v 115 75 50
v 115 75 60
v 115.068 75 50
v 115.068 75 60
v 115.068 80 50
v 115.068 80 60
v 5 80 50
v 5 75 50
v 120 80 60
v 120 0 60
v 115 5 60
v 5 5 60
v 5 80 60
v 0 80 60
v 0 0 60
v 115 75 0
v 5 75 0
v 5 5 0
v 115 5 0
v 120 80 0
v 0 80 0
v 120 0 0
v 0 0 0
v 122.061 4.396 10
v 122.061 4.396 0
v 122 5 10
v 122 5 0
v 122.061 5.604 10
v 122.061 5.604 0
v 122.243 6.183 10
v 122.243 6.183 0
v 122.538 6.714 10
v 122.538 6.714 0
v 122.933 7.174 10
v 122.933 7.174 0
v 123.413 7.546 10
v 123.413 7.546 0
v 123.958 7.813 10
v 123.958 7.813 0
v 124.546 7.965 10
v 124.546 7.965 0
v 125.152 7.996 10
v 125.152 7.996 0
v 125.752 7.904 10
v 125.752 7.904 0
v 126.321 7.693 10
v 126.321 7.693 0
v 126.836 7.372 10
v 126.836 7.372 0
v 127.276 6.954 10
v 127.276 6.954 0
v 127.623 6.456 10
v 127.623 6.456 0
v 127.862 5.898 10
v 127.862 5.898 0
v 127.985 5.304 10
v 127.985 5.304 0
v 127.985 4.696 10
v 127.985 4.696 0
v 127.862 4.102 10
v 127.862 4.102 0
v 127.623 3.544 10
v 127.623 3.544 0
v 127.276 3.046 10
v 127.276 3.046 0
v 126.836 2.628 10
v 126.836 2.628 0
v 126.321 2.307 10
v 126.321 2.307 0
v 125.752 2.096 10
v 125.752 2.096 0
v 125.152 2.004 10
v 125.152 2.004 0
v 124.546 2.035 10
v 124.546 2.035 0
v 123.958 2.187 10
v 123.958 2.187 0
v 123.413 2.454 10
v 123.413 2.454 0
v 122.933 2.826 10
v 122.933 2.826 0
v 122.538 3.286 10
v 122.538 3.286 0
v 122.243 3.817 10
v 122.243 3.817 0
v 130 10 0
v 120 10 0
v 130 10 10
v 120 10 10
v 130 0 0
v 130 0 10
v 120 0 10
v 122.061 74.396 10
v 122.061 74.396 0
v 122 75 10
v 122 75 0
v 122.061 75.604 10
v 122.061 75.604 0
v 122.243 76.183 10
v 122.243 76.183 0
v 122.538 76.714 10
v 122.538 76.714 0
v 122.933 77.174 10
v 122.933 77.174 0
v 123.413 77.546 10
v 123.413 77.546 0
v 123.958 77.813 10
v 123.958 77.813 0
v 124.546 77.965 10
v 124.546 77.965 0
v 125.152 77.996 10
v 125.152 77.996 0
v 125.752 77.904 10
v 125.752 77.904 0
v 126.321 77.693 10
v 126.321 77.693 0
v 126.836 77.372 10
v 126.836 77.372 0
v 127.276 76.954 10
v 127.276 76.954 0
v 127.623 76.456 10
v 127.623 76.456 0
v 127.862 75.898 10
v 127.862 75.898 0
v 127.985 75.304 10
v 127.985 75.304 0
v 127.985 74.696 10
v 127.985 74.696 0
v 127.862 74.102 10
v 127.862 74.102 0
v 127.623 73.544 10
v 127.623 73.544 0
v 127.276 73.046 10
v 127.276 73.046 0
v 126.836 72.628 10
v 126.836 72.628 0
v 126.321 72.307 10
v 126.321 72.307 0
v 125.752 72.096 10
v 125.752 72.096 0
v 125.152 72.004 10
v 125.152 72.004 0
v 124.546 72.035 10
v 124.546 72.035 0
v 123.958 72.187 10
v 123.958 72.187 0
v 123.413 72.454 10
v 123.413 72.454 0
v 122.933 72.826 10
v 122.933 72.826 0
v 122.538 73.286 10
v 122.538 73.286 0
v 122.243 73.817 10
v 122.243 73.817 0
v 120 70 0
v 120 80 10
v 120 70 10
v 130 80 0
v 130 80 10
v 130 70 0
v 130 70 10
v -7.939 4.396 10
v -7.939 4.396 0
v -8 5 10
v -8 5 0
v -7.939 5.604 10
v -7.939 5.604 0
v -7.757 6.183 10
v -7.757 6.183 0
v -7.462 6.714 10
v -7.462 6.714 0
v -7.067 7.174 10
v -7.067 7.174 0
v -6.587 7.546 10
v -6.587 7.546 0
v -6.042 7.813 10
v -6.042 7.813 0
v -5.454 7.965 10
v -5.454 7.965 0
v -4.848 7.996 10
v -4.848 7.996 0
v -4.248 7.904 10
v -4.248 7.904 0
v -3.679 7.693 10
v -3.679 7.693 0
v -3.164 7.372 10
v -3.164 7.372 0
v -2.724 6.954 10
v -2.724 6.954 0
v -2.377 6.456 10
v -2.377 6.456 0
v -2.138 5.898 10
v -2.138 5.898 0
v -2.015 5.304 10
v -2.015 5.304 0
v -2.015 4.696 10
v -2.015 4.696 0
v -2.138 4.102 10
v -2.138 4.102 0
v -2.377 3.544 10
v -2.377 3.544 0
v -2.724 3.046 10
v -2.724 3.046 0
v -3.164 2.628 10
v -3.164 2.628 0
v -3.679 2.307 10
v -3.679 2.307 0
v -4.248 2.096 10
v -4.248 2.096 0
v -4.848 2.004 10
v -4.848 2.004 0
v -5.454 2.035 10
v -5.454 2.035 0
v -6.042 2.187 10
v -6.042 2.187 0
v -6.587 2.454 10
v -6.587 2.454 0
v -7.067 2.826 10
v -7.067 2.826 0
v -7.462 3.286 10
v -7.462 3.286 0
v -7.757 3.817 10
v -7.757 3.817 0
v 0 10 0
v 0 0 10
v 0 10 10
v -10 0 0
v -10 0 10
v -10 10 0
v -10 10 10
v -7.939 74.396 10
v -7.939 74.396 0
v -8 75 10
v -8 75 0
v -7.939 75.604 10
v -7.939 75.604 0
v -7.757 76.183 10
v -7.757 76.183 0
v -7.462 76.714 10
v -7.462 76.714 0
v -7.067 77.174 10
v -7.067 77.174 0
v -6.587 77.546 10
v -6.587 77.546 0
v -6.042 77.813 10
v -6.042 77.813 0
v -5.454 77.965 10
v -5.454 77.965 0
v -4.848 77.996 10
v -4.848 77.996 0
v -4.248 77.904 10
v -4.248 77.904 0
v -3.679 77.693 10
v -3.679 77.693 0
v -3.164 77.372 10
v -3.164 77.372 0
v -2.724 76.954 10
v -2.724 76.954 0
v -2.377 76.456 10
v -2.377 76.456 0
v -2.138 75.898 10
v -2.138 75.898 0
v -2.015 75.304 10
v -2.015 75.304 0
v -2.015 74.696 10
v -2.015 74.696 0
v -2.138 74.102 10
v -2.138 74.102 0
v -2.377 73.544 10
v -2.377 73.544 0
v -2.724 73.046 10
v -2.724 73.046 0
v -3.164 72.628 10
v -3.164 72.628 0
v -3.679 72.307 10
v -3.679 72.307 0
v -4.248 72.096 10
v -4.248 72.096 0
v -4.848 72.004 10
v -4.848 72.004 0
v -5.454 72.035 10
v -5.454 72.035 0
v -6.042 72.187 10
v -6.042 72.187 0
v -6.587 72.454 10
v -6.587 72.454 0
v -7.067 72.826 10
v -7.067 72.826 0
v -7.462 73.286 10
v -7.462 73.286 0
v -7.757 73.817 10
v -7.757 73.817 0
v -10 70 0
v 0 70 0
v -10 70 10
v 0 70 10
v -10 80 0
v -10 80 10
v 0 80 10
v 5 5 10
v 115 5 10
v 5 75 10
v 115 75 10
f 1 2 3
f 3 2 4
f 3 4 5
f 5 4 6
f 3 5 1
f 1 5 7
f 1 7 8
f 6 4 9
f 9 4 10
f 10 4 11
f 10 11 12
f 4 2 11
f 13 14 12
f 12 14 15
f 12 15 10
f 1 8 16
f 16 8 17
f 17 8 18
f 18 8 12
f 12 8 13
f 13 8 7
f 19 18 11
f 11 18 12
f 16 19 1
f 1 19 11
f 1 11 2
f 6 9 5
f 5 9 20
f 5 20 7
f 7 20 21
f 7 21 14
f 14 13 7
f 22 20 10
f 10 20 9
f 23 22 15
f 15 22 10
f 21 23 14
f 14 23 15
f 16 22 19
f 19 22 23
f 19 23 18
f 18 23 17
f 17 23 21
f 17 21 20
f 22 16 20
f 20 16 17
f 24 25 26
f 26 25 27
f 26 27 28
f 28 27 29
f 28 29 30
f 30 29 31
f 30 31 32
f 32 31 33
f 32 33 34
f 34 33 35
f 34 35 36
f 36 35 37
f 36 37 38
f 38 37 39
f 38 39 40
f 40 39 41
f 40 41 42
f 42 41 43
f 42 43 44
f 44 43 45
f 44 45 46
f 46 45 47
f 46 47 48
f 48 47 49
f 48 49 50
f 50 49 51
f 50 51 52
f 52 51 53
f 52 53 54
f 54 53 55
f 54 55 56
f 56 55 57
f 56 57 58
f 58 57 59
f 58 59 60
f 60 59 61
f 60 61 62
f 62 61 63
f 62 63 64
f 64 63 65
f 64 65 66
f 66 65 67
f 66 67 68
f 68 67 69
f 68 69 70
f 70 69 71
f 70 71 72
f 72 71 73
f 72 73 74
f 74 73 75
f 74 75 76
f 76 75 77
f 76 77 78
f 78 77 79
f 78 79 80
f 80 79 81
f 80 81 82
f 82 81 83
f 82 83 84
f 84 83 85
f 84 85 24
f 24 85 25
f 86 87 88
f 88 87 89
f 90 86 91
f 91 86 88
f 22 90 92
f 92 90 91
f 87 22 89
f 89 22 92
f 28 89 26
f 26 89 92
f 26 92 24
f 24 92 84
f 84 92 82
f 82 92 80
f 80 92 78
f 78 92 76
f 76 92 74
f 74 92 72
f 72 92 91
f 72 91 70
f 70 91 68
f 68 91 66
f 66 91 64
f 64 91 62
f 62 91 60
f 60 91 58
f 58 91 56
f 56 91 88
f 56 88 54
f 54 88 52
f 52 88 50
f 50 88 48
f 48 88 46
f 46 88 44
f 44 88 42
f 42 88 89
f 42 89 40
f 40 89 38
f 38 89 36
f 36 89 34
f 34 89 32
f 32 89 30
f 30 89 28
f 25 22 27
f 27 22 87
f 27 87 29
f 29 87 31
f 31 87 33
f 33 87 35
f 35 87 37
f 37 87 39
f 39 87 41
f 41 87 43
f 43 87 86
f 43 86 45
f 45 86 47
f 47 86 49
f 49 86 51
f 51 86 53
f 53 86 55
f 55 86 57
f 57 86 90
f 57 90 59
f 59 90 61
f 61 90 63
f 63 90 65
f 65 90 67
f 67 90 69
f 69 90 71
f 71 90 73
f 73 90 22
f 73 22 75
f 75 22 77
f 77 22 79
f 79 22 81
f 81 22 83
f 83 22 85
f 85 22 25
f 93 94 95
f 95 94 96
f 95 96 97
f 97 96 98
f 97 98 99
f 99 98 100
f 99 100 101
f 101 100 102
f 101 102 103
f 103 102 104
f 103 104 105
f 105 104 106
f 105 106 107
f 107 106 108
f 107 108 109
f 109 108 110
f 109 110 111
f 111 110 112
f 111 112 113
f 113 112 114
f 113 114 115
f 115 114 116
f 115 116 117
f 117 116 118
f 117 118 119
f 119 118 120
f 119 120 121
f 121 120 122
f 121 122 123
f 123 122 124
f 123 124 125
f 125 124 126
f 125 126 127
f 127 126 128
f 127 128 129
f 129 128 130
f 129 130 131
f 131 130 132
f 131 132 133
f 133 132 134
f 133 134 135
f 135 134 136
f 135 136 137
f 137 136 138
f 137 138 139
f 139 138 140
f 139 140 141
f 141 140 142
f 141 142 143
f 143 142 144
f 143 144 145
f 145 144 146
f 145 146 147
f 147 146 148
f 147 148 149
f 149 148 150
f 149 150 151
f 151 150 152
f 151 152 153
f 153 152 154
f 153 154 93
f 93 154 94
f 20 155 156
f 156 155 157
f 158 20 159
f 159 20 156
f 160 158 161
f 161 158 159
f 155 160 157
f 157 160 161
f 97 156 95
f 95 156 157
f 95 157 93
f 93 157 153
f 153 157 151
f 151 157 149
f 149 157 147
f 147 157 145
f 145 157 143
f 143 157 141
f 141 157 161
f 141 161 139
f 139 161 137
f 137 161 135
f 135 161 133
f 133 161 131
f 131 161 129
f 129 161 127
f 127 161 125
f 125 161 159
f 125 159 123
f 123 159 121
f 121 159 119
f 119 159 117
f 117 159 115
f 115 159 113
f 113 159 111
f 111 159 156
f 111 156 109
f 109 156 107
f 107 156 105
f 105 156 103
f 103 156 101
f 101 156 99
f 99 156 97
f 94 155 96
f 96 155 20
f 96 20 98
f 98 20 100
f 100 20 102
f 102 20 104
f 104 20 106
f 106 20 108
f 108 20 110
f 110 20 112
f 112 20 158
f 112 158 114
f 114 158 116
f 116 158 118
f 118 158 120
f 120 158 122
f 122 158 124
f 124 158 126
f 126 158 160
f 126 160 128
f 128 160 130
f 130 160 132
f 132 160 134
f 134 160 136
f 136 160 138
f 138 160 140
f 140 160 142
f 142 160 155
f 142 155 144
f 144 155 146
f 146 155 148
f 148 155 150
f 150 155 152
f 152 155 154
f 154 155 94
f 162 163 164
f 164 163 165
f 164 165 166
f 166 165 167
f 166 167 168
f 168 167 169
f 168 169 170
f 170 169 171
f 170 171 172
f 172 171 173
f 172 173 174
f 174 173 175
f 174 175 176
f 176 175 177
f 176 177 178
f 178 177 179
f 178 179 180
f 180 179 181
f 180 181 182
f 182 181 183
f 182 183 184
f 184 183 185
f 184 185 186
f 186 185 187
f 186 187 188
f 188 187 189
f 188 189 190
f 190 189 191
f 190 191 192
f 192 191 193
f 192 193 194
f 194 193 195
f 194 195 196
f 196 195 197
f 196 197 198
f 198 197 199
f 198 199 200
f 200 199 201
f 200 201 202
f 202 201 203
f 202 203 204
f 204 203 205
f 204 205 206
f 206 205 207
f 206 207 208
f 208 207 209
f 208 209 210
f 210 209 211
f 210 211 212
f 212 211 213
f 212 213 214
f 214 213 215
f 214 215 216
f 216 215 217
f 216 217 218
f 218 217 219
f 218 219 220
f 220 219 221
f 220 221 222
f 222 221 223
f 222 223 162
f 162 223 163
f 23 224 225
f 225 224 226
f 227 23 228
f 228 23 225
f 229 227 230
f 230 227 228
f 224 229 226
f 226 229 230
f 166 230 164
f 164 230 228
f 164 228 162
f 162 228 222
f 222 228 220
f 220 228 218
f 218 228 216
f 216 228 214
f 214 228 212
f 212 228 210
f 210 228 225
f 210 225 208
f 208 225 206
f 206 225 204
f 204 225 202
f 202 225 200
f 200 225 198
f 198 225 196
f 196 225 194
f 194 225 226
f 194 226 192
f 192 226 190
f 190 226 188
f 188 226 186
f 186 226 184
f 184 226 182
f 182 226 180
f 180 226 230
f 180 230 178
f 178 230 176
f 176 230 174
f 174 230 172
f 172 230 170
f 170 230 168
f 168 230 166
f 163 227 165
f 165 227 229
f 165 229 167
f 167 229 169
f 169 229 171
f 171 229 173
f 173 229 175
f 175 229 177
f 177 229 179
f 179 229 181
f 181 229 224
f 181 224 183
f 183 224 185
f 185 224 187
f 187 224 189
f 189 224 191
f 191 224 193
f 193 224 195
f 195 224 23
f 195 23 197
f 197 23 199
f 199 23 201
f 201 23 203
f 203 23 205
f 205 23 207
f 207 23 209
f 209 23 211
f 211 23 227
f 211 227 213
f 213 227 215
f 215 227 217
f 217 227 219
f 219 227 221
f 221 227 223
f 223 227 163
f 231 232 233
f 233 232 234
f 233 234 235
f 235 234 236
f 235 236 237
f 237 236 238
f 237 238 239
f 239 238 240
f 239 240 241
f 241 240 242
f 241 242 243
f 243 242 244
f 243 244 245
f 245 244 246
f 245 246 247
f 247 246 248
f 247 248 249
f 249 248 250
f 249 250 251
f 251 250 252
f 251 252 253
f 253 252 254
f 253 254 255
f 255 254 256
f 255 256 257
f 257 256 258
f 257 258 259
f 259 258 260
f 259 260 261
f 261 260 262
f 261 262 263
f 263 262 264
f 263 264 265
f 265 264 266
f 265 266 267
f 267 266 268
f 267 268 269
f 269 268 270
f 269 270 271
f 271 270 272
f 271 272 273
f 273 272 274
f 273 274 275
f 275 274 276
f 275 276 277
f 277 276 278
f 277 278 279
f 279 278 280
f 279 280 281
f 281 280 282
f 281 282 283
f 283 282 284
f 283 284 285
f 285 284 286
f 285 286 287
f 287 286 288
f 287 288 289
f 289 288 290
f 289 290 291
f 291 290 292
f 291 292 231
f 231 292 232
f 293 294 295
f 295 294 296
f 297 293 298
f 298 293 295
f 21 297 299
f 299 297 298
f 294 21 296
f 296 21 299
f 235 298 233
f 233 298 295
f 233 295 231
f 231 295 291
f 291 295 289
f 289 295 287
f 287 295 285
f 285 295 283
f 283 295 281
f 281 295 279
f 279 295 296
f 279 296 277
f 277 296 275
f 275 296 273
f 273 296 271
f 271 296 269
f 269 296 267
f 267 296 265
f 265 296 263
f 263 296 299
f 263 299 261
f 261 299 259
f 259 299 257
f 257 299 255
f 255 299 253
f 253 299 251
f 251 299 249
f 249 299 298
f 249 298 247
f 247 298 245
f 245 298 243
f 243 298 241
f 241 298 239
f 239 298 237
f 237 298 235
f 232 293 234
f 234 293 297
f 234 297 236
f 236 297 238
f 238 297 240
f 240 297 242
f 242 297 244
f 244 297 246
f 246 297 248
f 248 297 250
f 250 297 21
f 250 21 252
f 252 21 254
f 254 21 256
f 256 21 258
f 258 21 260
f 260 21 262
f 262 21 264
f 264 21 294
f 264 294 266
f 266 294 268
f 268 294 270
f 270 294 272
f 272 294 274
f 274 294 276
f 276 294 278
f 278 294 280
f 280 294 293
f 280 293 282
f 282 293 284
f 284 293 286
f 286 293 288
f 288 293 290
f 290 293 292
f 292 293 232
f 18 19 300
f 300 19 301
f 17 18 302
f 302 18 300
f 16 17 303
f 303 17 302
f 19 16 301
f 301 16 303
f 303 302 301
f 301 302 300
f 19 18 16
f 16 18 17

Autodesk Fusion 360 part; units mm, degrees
sketch "Sketch1" plane through (0, 0, 0) normal (0, 0, 1) x (1, 0, 0)
  line L0 (0, 0) -> (120, 0)
  line L1 (120, 0) -> (120, 80)
  line L2 (120, 80) -> (0, 80)
  line L3 (0, 80) -> (0, 0)
  line L4 (120, 80) -> (130, 80)
  line L5 (130, 80) -> (130, 70)
  line L6 (130, 70) -> (120, 70)
  line L7 (120, 70) -> (120, 80)
  line L8 (120, 0) -> (130, 0)
  line L9 (130, 0) -> (130, 10)
  line L10 (130, 10) -> (120, 10)
  line L11 (120, 10) -> (120, 0)
  line L12 (0, 0) -> (-10, 0)
  line L13 (-10, 0) -> (-10, 10)
  line L14 (-10, 10) -> (0, 10)
  line L15 (0, 10) -> (0, 0)
  line L16 (0, 80) -> (-10, 80)
  line L17 (-10, 80) -> (-10, 70)
  line L18 (-10, 70) -> (0, 70)
  line L19 (0, 70) -> (0, 80)
  circle A0 centre (125, 75) radius 3
  circle A1 centre (125, 5) radius 3
  circle A2 centre (-5, 75) radius 3
  circle A3 centre (-5, 5) radius 3
  line L20 (115, 75) -> (5, 75)
  line L21 (5, 75) -> (5, 5)
  line L22 (5, 5) -> (115, 5)
  line L23 (115, 5) -> (115, 75)
  dimension "d1" = 80
  dimension "d2" = 120
  dimension "d3" = 6
  dimension "d4" = 6
  dimension "d5" = 6
  dimension "d6" = 6
  dimension "d7" = -5
extrude "Extrude2" add sketch "Sketch1" along normal blind 60 contours L0 L1 L2 L3 L7 L11 L15 L19 makes body 1
extrude "Extrude1" add sketch "Sketch1" along normal blind 10 separate body contours L3 L12 L13 L14 L15 | L1 L8 L9 L10 L11 | L3 L16 L17 L18 L19 | L1 L4 L5 L6 L7 | L20 L21 L22 L23 makes body 2 at (123.6314, 2.3304, 3.3333) makes body 3 at (127.6347, 76.4348, 3.3333) makes body 4 at (-2.0037, 4.8505, 6.6667) makes body 5 at (-2.1809, 73.9739, 6.6667) makes body 6 at (41.6667, 28.3333, 0)
sketch "Sketch2" plane through (0, 80, 0) normal (0, 1, 0) x (-1, 0, 0)
  line L0 (-120, 0) -> (0, 0)
  line L1 (0, 0) -> (0, 60)
  line L2 (0, 60) -> (-120, 60)
  line L3 (-120, 60) -> (-120, 0)
  line L4 (-115.0684, 60) -> (-5, 60)
  line L5 (-5, 60) -> (-5, 50)
  line L6 (-5, 50) -> (-115.0684, 50)
  line L7 (-115.0684, 50) -> (-115.0684, 60)
extrude "Extrude3" cut sketch "Sketch2" against normal up to surface (5 mm away) contours L2 L4 L5 L6 L7 bodies 1
sketch "Sketch3" plane through (0, 80, 0) normal (0, 1, 0) x (-1, 0, 0)
  line L0 (-115.0684, 50) -> (-115.0684, 60)
  line L1 (-115.0684, 60) -> (-120, 60)
  line L2 (-120, 60) -> (-120, 0)
  line L3 (-120, 0) -> (0, 0)
  line L4 (0, 0) -> (0, 60)
  line L5 (0, 60) -> (-5, 60)
  line L6 (-5, 60) -> (-5, 50)
  line L7 (-5, 50) -> (-115.0684, 50)
sketch "Sketch4" plane through (0, 0, 60) normal (0, 0, 1) x (-1, 0, 0)
  line L0 (-115.0684, -80) -> (-115.0684, -75)
  line L1 (-115.0684, -75) -> (-115, -75)
  line L2 (-115, -75) -> (-115, -5)
  line L3 (-115, -5) -> (-5, -5)
  line L4 (-5, -5) -> (-5, -80)
  line L5 (-5, -80) -> (0, -80)
  line L6 (0, -80) -> (0, 0)
  line L7 (0, 0) -> (-120, 0)
  line L8 (-120, 0) -> (-120, -80)
  line L9 (-120, -80) -> (-115.0684, -80)
  line L10 (-2.5, -75) -> (-117.5, -75) construction
  line L11 (-117.5, -75) -> (-117.5, -2.5) construction
  line L12 (-117.5, -2.5) -> (-2.5, -2.5) construction
  line L13 (-2.5, -2.5) -> (-2.5, -75) construction
  line L14 (-5, -75) -> (-5, -5) construction
  line L15 (0, 0) -> (-120, 0) construction
  line L16 (-120, 0) -> (-120, -80) construction
  line L17 (-120, -80) -> (0, -80) construction
  circle A0 centre (-2.5, -75) radius 1.5
  circle A1 centre (-2.5, -2.5) radius 1.5
  circle A2 centre (-117.5, -2.5) radius 1.5
  circle A3 centre (-117.5, -75) radius 1.5
  dimension "d15" = 2.5
  dimension "d16" = 2.5
  dimension "d17" = 2.5
  dimension "d18" = 5
  dimension "d19" = 115
  dimension "d20" = 72.5
  dimension "d22" = 3
  dimension "d23" = 3
  dimension "d24" = 3
  dimension "d25" = 3
extrude "Extrude4" [suppressed]
sketch "Sketch5" plane through (0, 0, 10) normal (0, 0, 1) x (-1, 0, 0)
  line L0 (-115, -5) -> (-115, -75)
  line L1 (-115, -75) -> (-5, -75)
  line L2 (-5, -75) -> (-5, -5)
  line L3 (-5, -5) -> (-115, -5)
  line L4 (-10, -10) -> (-110, -10) construction
  line L5 (-110, -10) -> (-110, -70) construction
  line L6 (-110, -70) -> (-10, -70) construction
  line L7 (-10, -70) -> (-10, -10) construction
  line L8 (-10, -60) -> (-110, -60) construction
  line L9 (-10, -50) -> (-110, -50) construction
  line L10 (-10, -40) -> (-110, -40) construction
  line L11 (-10, -30) -> (-110, -30) construction
  line L12 (-10, -20) -> (-110, -20) construction
  circle A0 centre (-10, -60) radius 1.5
  circle A1 centre (-10, -50) radius 1.5
  circle A2 centre (-10, -40) radius 1.5
  circle A3 centre (-10, -30) radius 1.5
  circle A4 centre (-10, -20) radius 1.5
  dimension "d28" = -5
  dimension "d29" = 10
  dimension "d30" = 3
  dimension "d31" = 3
  dimension "d32" = 3
  dimension "d33" = 3
  dimension "d34" = 3
extrude "Extrude5" [suppressed]
pattern_linear "R-Pattern1" [suppressed]
sketch "Sketch6" plane through (120, 0, 0) normal (1, 0, 0) x (0, 1, 0)
  line L0 (0, 0) -> (80, 0)
  line L1 (80, 0) -> (80, 60)
  line L2 (80, 60) -> (0, 60)
  line L3 (0, 60) -> (0, 0)
  circle A0 centre (40, 25) radius 10
  dimension "d41" = 20
extrude "Extrude6" [suppressed]
fillet "Fillet1" [suppressed]
fillet "Fillet2" [suppressed]
